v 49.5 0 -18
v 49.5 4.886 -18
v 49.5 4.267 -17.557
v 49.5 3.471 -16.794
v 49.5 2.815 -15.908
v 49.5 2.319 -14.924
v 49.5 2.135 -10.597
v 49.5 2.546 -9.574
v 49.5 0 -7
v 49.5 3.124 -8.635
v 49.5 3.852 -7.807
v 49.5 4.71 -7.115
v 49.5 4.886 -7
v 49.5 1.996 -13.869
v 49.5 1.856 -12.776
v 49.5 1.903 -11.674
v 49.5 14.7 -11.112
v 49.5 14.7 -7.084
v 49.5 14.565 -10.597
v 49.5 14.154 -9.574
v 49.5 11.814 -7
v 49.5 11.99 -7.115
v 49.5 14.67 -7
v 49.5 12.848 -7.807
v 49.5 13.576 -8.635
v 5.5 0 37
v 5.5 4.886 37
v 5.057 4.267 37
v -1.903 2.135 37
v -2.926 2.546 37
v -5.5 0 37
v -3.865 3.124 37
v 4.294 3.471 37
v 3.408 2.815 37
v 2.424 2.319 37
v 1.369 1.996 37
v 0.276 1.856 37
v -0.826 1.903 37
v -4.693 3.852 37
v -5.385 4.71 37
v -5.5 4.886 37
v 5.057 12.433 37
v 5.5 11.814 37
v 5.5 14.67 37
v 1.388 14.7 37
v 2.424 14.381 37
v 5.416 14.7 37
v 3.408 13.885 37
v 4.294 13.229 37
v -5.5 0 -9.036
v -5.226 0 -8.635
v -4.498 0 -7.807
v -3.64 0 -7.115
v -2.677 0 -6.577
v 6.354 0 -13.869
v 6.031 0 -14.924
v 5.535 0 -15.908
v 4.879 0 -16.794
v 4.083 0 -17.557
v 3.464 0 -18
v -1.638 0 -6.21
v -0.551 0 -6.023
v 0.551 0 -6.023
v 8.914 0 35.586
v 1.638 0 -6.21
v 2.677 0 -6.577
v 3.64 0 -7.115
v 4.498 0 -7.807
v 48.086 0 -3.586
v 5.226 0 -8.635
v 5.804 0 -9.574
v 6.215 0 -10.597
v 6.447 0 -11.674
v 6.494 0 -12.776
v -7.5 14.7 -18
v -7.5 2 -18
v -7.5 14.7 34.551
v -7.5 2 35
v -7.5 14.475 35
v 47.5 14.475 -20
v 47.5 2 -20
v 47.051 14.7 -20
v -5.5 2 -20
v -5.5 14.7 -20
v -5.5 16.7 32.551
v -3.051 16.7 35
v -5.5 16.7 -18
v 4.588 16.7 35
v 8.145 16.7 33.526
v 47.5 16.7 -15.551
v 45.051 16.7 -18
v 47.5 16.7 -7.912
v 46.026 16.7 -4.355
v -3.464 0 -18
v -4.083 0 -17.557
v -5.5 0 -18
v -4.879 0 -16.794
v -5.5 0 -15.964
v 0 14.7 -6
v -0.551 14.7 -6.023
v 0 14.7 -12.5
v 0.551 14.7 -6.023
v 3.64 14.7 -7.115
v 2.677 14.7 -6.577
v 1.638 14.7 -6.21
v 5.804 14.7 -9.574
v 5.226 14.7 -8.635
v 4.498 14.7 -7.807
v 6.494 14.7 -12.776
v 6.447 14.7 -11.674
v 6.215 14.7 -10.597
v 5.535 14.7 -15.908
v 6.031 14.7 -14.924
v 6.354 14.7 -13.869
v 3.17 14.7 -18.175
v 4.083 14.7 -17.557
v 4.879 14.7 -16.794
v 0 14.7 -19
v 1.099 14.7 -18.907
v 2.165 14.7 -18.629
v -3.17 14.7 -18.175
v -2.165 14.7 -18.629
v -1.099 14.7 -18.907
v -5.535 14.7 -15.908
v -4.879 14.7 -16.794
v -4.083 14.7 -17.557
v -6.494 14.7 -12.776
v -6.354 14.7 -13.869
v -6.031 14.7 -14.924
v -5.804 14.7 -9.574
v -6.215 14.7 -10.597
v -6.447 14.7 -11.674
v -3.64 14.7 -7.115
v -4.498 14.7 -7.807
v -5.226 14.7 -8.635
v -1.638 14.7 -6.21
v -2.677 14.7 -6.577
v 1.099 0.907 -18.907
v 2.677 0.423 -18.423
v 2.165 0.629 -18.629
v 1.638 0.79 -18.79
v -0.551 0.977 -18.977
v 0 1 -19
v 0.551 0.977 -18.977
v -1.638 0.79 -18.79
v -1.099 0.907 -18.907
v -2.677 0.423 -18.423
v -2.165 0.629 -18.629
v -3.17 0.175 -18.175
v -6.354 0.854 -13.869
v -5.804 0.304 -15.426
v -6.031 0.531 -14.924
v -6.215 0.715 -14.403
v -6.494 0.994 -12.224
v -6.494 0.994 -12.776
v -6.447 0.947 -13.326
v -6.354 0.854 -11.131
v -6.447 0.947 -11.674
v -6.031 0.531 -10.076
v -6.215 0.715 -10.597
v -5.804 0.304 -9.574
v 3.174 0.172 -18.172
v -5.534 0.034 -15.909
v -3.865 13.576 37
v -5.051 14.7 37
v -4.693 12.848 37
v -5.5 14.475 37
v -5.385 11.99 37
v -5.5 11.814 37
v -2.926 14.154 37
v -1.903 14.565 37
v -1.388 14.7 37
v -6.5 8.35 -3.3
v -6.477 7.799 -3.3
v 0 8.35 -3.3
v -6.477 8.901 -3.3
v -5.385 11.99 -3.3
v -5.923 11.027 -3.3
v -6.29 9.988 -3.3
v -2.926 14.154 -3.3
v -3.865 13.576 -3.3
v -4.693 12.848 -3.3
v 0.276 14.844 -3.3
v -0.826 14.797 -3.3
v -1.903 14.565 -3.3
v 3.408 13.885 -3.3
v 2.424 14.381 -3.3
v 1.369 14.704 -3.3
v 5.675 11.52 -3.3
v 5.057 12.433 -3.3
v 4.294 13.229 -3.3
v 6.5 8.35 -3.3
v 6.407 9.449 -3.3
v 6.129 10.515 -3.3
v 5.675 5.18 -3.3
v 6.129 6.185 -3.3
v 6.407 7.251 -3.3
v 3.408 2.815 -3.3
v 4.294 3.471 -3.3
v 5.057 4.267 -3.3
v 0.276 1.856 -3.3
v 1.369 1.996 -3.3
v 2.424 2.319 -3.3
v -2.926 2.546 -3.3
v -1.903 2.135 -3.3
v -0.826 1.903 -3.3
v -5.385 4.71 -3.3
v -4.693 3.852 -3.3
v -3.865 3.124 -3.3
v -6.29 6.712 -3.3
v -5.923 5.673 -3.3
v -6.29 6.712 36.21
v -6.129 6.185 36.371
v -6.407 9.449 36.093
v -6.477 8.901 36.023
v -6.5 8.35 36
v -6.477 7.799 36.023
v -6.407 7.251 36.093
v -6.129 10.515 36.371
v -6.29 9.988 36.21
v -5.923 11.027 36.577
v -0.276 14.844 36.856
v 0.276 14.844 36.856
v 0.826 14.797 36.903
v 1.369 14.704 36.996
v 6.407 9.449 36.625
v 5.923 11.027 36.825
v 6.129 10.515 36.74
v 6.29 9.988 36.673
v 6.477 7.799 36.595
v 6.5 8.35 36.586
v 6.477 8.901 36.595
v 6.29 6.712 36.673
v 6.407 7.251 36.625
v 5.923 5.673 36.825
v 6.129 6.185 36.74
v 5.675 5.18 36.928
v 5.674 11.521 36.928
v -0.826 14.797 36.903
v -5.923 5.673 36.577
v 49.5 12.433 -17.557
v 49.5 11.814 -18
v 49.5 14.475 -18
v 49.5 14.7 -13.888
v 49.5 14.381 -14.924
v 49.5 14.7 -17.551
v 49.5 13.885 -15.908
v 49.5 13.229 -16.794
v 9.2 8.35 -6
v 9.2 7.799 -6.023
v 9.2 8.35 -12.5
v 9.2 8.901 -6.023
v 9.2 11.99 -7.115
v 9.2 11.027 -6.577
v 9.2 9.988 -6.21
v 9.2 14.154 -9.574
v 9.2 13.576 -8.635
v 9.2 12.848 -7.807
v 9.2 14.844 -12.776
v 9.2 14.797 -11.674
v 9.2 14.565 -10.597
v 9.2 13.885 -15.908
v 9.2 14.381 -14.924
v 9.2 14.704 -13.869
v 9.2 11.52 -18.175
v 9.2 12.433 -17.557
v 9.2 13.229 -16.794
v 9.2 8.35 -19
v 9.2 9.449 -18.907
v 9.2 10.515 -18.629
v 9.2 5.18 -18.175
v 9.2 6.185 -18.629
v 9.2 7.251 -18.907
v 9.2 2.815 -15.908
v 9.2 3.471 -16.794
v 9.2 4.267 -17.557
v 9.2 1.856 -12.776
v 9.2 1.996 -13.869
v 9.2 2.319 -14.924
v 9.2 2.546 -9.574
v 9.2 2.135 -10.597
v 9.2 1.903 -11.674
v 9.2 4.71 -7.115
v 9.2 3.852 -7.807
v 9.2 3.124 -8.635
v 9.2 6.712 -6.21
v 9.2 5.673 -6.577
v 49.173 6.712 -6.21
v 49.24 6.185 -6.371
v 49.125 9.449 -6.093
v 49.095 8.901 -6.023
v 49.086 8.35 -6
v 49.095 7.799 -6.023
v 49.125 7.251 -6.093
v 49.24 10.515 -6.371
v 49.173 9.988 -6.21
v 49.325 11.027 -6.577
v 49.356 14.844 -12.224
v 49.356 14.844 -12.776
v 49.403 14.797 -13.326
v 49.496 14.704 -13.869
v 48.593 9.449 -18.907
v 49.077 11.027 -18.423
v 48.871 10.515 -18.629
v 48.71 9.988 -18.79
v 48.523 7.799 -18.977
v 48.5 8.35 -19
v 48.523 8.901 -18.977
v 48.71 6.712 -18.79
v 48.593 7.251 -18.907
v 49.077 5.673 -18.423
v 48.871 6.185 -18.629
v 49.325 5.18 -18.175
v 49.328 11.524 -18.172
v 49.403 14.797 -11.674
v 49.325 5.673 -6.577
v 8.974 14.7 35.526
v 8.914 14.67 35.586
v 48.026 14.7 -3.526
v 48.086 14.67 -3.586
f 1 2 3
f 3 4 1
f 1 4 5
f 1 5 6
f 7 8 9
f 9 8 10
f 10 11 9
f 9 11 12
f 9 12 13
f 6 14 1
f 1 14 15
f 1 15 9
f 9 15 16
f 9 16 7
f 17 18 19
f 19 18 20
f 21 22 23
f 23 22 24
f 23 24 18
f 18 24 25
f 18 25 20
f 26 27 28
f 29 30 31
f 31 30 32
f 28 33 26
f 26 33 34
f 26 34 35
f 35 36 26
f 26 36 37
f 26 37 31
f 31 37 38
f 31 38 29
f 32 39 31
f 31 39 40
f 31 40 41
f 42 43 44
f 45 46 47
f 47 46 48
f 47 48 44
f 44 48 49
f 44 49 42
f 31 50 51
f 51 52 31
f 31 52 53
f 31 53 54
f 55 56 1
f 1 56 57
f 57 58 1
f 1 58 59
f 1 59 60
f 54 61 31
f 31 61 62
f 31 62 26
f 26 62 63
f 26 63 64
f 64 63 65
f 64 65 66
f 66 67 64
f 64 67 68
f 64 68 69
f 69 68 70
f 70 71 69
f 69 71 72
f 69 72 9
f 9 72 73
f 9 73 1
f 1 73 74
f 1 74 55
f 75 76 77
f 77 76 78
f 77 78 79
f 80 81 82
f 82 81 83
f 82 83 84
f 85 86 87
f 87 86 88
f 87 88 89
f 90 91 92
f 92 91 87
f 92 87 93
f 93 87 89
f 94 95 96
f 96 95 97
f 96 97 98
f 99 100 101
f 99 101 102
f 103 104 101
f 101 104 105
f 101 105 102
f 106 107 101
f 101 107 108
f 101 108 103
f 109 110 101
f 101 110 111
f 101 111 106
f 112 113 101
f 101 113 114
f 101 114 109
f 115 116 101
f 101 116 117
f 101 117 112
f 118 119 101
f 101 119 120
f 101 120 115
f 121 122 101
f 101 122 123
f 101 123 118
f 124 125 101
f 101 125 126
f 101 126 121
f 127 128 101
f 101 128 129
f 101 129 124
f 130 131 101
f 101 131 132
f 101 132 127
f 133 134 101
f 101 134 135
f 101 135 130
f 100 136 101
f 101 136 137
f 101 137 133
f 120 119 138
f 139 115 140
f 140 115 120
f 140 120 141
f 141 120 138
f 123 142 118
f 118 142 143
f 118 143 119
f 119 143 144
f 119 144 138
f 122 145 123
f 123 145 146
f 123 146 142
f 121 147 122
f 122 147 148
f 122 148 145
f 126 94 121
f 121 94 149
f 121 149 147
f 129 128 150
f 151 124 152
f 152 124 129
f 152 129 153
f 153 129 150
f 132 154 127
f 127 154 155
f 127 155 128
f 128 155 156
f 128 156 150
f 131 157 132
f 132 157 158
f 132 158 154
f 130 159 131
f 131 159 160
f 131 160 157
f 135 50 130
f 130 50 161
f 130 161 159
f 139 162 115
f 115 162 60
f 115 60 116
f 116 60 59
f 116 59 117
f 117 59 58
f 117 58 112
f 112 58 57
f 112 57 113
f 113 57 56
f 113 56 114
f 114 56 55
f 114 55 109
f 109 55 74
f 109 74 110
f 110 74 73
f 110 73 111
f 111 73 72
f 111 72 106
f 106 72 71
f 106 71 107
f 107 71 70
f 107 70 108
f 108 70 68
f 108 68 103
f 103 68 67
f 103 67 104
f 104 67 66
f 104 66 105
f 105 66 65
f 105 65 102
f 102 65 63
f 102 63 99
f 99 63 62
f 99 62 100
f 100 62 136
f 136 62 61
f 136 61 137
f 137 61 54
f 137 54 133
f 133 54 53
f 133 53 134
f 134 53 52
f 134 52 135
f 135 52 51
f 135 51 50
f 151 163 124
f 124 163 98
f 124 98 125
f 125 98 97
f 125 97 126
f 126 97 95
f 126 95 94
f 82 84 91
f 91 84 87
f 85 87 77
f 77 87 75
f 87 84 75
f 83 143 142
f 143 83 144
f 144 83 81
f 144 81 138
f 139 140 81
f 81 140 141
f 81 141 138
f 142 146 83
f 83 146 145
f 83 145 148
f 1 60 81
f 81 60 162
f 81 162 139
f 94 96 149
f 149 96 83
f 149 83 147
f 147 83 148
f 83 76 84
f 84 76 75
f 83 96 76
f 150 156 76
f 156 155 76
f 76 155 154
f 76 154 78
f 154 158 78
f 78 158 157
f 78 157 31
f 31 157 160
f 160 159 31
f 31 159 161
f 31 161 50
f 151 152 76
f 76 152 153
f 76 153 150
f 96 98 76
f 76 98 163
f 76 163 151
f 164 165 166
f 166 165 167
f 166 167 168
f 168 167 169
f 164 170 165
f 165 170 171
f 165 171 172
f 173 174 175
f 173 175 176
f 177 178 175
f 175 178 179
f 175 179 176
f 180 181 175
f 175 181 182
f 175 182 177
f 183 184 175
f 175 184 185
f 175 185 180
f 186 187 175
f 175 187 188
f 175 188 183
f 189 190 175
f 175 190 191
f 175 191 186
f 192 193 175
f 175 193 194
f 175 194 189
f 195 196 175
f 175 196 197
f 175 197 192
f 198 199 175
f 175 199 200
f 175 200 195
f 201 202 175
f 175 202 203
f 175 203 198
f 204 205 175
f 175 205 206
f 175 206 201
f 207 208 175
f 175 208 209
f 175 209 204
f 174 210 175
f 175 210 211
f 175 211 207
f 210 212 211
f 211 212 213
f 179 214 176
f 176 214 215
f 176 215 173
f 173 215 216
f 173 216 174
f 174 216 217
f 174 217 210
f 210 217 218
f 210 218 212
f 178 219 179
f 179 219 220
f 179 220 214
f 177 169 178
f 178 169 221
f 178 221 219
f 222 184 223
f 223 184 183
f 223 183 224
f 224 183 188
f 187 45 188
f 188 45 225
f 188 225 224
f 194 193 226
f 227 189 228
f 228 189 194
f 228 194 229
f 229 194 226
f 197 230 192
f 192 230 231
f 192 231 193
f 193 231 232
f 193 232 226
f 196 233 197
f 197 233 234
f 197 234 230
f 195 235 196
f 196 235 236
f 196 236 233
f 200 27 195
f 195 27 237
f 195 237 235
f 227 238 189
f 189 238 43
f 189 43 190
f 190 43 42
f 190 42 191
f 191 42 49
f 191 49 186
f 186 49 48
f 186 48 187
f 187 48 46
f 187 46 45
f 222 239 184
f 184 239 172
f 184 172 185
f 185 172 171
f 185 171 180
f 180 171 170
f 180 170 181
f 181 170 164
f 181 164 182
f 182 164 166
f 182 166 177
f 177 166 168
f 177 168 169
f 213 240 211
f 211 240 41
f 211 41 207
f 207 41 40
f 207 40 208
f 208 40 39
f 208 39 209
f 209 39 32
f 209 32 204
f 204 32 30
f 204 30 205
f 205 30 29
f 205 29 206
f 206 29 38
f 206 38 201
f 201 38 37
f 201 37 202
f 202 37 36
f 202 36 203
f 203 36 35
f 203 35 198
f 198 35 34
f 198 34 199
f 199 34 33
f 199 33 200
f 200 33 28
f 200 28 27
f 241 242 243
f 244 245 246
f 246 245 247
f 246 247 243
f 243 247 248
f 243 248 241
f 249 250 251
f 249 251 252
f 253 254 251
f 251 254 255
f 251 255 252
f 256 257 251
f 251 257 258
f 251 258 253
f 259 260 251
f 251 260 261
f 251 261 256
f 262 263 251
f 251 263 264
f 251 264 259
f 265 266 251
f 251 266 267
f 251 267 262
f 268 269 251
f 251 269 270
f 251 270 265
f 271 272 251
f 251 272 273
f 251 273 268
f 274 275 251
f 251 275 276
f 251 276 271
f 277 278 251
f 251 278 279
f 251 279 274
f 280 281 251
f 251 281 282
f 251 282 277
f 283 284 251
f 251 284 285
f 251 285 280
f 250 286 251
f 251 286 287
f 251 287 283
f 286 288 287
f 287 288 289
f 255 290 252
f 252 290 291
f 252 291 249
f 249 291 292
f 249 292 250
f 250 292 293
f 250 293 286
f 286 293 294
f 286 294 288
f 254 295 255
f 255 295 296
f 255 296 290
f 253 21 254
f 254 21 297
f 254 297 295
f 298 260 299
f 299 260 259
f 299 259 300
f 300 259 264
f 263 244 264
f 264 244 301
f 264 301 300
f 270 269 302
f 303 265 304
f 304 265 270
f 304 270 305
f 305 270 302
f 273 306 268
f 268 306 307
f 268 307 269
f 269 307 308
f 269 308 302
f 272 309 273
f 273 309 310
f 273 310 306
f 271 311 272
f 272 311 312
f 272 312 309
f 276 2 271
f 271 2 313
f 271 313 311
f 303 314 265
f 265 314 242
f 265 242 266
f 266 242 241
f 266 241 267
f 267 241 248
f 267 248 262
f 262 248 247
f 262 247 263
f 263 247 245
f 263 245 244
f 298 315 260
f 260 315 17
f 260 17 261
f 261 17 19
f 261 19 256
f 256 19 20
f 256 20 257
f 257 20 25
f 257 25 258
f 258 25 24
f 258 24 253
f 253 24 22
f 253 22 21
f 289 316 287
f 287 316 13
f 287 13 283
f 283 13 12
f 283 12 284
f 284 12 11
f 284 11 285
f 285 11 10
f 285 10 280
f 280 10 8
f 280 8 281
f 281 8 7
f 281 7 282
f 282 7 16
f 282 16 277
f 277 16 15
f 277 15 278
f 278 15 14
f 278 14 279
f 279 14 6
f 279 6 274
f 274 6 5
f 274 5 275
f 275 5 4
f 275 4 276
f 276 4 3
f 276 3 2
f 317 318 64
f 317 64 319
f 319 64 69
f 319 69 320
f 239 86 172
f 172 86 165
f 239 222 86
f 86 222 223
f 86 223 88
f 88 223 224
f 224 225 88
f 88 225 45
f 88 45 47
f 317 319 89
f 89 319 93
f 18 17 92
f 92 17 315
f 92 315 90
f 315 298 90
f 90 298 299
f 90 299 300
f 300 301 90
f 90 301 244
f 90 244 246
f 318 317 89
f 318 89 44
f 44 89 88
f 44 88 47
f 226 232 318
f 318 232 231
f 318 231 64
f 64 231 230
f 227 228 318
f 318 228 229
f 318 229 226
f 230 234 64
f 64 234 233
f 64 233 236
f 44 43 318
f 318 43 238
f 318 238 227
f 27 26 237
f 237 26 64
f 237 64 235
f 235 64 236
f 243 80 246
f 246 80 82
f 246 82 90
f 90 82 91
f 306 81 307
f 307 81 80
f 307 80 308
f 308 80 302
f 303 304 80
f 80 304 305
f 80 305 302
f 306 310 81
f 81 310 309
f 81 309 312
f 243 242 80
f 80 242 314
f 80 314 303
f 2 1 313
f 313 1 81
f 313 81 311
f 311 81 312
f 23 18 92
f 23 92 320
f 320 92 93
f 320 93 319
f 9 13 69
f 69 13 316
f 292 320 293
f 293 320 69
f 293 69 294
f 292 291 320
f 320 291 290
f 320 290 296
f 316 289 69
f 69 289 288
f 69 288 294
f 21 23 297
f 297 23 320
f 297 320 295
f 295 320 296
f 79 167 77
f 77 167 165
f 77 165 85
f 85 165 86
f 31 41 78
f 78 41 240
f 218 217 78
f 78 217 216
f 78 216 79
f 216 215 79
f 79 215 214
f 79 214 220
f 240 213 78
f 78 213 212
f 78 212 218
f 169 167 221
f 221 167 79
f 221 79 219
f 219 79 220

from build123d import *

# Parameters (mm, degrees)
SKETCH1_W           = 15
SKETCH1_H           = 10
SKETCH1_H_2         = 15
SKETCH1_W_2         = 10
BOSS_EXTRUDE1_DEPTH = 16.7
SKETCH2_R           = 6.5
CUT_EXTRUDE1_DEPTH  = 8.3
SKETCH3_R           = 6.5
CUT_EXTRUDE2_DEPTH  = 8.3
SKETCH4_R           = 6.5
CUT_EXTRUDE3_DEPTH  = 14.7
BOSS_EXTRUDE2_START = 32
SKETCH5_R           = 6.5
BOSS_EXTRUDE2_DEPTH = 32
BOSS_EXTRUDE3_START = 32
SKETCH6_R           = 6.5
BOSS_EXTRUDE3_DEPTH = 32
BOSS_EXTRUDE4_DEPTH = 16.7
CHAMFER1_SIZE       = 2
CHAMFER2_SIZE       = 2


with BuildPart() as part:
    # Sketch1 → Boss-Extrude1 (new body)
    with BuildSketch(Plane(origin=(0, 0, 0), x_dir=(1, 0, 0), z_dir=(0, 1, 0))):
        Rectangle(SKETCH1_W, SKETCH1_H)
        with Locations((0, 12.5)):
            Rectangle(SKETCH1_W, SKETCH1_H_2)
        with Locations((12.5, 12.5)):
            Rectangle(SKETCH1_W_2, SKETCH1_H_2)
    extrude(amount=BOSS_EXTRUDE1_DEPTH)

    # Sketch2 → Cut-Extrude1 (cut)
    with BuildSketch(Plane.XY.offset(5)):
        with Locations((0, 8.35)):
            Circle(SKETCH2_R)
    extrude(amount=-CUT_EXTRUDE1_DEPTH, mode=Mode.SUBTRACT)

    # Sketch3 → Cut-Extrude2 (cut)
    with BuildSketch(Plane(origin=(17.5, 0, 0), x_dir=(0, 0, -1), z_dir=(1, 0, 0))):
        with Locations((12.5, 8.35)):
            Circle(SKETCH3_R)
    extrude(amount=-CUT_EXTRUDE2_DEPTH, mode=Mode.SUBTRACT)

    # Sketch4 → Cut-Extrude3 (cut)
    with BuildSketch(Plane.XZ):
        with Locations(Location((0, -12.5, 0), (0, 0, 270))):
            Circle(SKETCH4_R)
    extrude(amount=-CUT_EXTRUDE3_DEPTH, mode=Mode.SUBTRACT)

    # Fillet8
    # the kernel refuses this chamfer: 2 mm, written as the material it adds along each edge
    with BuildSketch(Plane(origin=(7.5, 0, -5), x_dir=(-0.027495876610586494, 0, 0.9996219169112968), z_dir=(0, 1, 0))) as fillet8_piece_1:
        with BuildLine():
            Line((2.05734639, 0), (-0.11309431, 2.054235587))
            Line((-0.11309431, 2.054235587), (-0.153079186, 2.053135752))
            ThreePointArc((-0.153079186, 2.053135752), (-0.068258454, 1.026795659), (-0.039984877, -0.001099835))
            Line((-0.039984877, -0.001099835), (0.001099835, -0.039984877))
            ThreePointArc((0.001099835, -0.039984877), (1.028995329, -0.011711299), (2.058446225, -0.039984877))
            Line((2.058446225, -0.039984877), (2.05734639, 0))
        make_face()
    extrude(amount=16.7)
    # the kernel refuses this chamfer: 2 mm, written as the material it takes off along each edge
    with BuildSketch(Plane(origin=(-6.166666667, 1.333333333, -18.666666667), x_dir=(0.7071067811865471, 0, -0.707106781186548), z_dir=(-0.5773502691896263, -0.5773502691896255, -0.5773502691896254)), Plane(origin=(-6.166666667, 15.366666667, -18.666666667), x_dir=(0.7071067811865471, 0.7071067811865478, 0), z_dir=(-0.5773502691896261, 0.5773502691896256, -0.5773502691896256))) as fillet8_2_piece_1:
        Polygon((-1.414213562, -0.816496581), (1.414213562, -0.816496581), (0, 1.632993162), align=None)
    extrude(amount=2.540341184, mode=Mode.SUBTRACT)
    with BuildSketch(Plane(origin=(-7.5, 0, -25.143365976), x_dir=(-0.027495876610586494, 0.9996219169112968, 0), z_dir=(0, 0, 1)), Plane(origin=(22.643365976, 16.7, -20), x_dir=(0, 0.027495876610585647, 0.9996219169112968), z_dir=(-1, 0, 0)), Plane(origin=(-7.5, 16.7, 10.143365976), x_dir=(-0.027495876610586487, -0.9996219169112968, 0), z_dir=(0, 0, -1)), Plane(origin=(22.643365976, 0, -20), x_dir=(0, 0.9996219169112968, -0.02749587661058563), z_dir=(-1, 0, 0))) as fillet8_2_piece_2:
        with BuildLine():
            Line((2.05734639, 0), (-0.11309431, -2.054235587))
            Line((-0.11309431, -2.054235587), (-0.153079186, -2.053135752))
            ThreePointArc((-0.153079186, -2.053135752), (-0.068258454, -1.026795659), (-0.039984877, 0.001099835))
            Line((-0.039984877, 0.001099835), (0.001099835, 0.039984877))
            ThreePointArc((0.001099835, 0.039984877), (1.028995329, 0.011711299), (2.058446225, 0.039984877))
            Line((2.058446225, 0.039984877), (2.05734639, 0))
        make_face()
    extrude(amount=35.286731952, mode=Mode.SUBTRACT)
    with BuildSketch(Plane(origin=(-7.5, -5.143365976, -20), x_dir=(-0.02749587661058694, 0, 0.9996219169112968), z_dir=(0, 1, 0))) as fillet8_2_piece_3:
        with BuildLine():
            Line((2.05734639, 0), (-0.11309431, 2.054235587))
            Line((-0.11309431, 2.054235587), (-0.153079186, 2.053135752))
            ThreePointArc((-0.153079186, 2.053135752), (-0.068258454, 1.026795659), (-0.039984877, -0.001099835))
            Line((-0.039984877, -0.001099835), (0.001099835, -0.039984877))
            ThreePointArc((0.001099835, -0.039984877), (1.028995329, -0.011711299), (2.058446225, -0.039984877))
            Line((2.058446225, -0.039984877), (2.05734639, 0))
        make_face()
    extrude(amount=26.986731952, mode=Mode.SUBTRACT)

    # Sketch5 → Boss-Extrude2 (add)
    with BuildSketch(Plane.XY.offset(5).offset(BOSS_EXTRUDE2_START)):
        Polygon((-7.5, 14.7), (-7.5, 2), (-5.5, 0), (5.5, 0), (7.5, 0), (7.5, 16.7), (5.5, 16.7), (-5.5, 16.7), align=None)
        with Locations((0, 8.35)):
            Circle(SKETCH5_R, mode=Mode.SUBTRACT)
    extrude(amount=-BOSS_EXTRUDE2_DEPTH)

    # Sketch6 → Boss-Extrude3 (add)
    with BuildSketch(Plane(origin=(17.5, 0, 0), x_dir=(0, 0, -1), z_dir=(1, 0, 0)).offset(BOSS_EXTRUDE3_START)):
        Polygon((7, 0), (18, 0), (20, 2), (20, 14.7), (18, 16.7), (7, 16.7), (5, 16.7), (5, 0), align=None)
        with Locations((12.5, 8.35)):
            Circle(SKETCH6_R, mode=Mode.SUBTRACT)
    extrude(amount=-BOSS_EXTRUDE3_DEPTH)

    # Sketch7 → Boss-Extrude4 (add)
    with BuildSketch(Plane(origin=(0, 16.7, 0), x_dir=(1, 0, 0), z_dir=(0, 1, 0))):
        Polygon((7.5, -37), (7.5, 3), (9.5, 5), (49.5, 5), align=None)
    extrude(amount=-BOSS_EXTRUDE4_DEPTH)

    # Chamfer1
    # the kernel refuses this chamfer: 2 mm, written as the material it takes off along each edge
    with BuildSketch(Plane(origin=(49.5, 16.7, 0.143365976), x_dir=(-0.9996219169112968, 0.027495876610585647, 0), z_dir=(0, 0, -1)), Plane(origin=(-10.643365976, 16.7, 37), x_dir=(0, 0.027495876610585647, -0.9996219169112968), z_dir=(1, 0, 0))) as chamfer1_piece_1:
        Polygon((CHAMFER1_SIZE * 0.999621916911, -CHAMFER1_SIZE * 0.0274958766106), (-CHAMFER1_SIZE * 0.0274958766106, -CHAMFER1_SIZE * 0.999621916911), (0, 0), align=None)
    extrude(amount=23.286731952, mode=Mode.SUBTRACT)
    with BuildSketch(Plane(origin=(53.13690896, 16.7, -8.63690896), x_dir=(-0.7068394360706737, 0.027495876610585664, -0.7068394360706735), z_dir=(-0.7071067811865475, 0, 0.7071067811865476))) as chamfer1_piece_2:
        Polygon((CHAMFER1_SIZE * 0.999621916911, CHAMFER1_SIZE * 0.0274958766106), (-CHAMFER1_SIZE * 0.0274958766106, CHAMFER1_SIZE * 0.999621916911), (0, 0), align=None)
    extrude(amount=69.683701572, mode=Mode.SUBTRACT)

    # Chamfer2
    # the kernel refuses this chamfer: 2 mm, written as the material it takes off along each edge
    with BuildSketch(Plane(origin=(53.023839401, 11.176160599, -3.540377928), x_dir=(-0.5328158002121677, -0.1913765872198606, 0.8243071787315372), z_dir=(-0.6785983445455896, 0.6785983445461322, -0.2810846377147535))) as chamfer2_piece_1:
        Polygon((CHAMFER2_SIZE * 0.999945689414, -CHAMFER2_SIZE * 0.0104220066763), (-CHAMFER2_SIZE * 0.858936955191, -CHAMFER2_SIZE * 0.512081348037), (0, 0), align=None)
    extrude(amount=13.332892535, mode=Mode.SUBTRACT)
    with BuildSketch(Plane(origin=(44.512690686, 19.687309314, -15.012690686), x_dir=(0.4218381251250203, -0.39450595107904946, 0.816344076204527), z_dir=(0.5773502691895054, -0.5773502691899669, -0.577350269189405)), Plane(origin=(-10.487309314, 11.712690686, 39.987309314), x_dir=(0.8163440762039974, -0.3945059510795843, 0.4218381251255447), z_dir=(0.5773502691901542, 0.5773502691895923, -0.5773502691891308))) as chamfer2_piece_2:
        Polygon((CHAMFER2_SIZE * 0.999813220622, CHAMFER2_SIZE * 0.0193267656127), (-CHAMFER2_SIZE * 0.516644080304, CHAMFER2_SIZE * 0.856200265292), (0, 0), align=None)
    extrude(amount=13.812444634, mode=Mode.SUBTRACT)
    with BuildSketch(Plane(origin=(7.5, -5.185340786, 37), x_dir=(-0.9998910622590239, 0, 0.014760203742522883), z_dir=(0, 1, 0))) as chamfer2_piece_3:
        Polygon((CHAMFER2_SIZE * 0.999891062259, -CHAMFER2_SIZE * 0.0147602037425), (-CHAMFER2_SIZE * 0.717466790729, -CHAMFER2_SIZE * 0.696592710413), (0, 0), align=None)
    extrude(amount=25.070681572, mode=Mode.SUBTRACT)
    with BuildSketch(Plane(origin=(5.211950804, 20.223839401, 31.476160599), x_dir=(-0.959630861315162, -0.1913765872199142, 0.20611553040850397), z_dir=(0.2810846377147535, -0.6785983445461322, 0.6785983445455896))) as chamfer2_piece_4:
        Polygon((CHAMFER2_SIZE * 0.999945689414, CHAMFER2_SIZE * 0.0104220066763), (-CHAMFER2_SIZE * 0.858936955191, CHAMFER2_SIZE * 0.512081348037), (0, 0), align=None)
    extrude(amount=13.332892535, mode=Mode.SUBTRACT)
    with BuildSketch(Plane(origin=(49.5, -3.143365976, -20), x_dir=(0.027495876610585647, 0, 0.9996219169112968), z_dir=(0, 1, 0)), Plane(origin=(-7.5, 19.843365976, 37), x_dir=(0.9996219169112968, 0, 0.027495876610585623), z_dir=(0, -1, 0))) as chamfer2_piece_5:
        Polygon((CHAMFER2_SIZE * 0.999621916911, -CHAMFER2_SIZE * 0.0274958766106), (-CHAMFER2_SIZE * 0.0274958766106, -CHAMFER2_SIZE * 0.999621916911), (0, 0), align=None)
    extrude(amount=22.986731952, mode=Mode.SUBTRACT)
    with BuildSketch(Plane(origin=(49.5, 19.885340786, -5), x_dir=(-0.6965927104131439, 0, 0.7174667907292085), z_dir=(0, -1, 0))) as chamfer2_piece_6:
        Polygon((CHAMFER2_SIZE * 0.999891062259, CHAMFER2_SIZE * 0.0147602037425), (-CHAMFER2_SIZE * 0.717466790729, CHAMFER2_SIZE * 0.696592710413), (0, 0), align=None)
    extrude(amount=25.070681572, mode=Mode.SUBTRACT)


solid = part.part
